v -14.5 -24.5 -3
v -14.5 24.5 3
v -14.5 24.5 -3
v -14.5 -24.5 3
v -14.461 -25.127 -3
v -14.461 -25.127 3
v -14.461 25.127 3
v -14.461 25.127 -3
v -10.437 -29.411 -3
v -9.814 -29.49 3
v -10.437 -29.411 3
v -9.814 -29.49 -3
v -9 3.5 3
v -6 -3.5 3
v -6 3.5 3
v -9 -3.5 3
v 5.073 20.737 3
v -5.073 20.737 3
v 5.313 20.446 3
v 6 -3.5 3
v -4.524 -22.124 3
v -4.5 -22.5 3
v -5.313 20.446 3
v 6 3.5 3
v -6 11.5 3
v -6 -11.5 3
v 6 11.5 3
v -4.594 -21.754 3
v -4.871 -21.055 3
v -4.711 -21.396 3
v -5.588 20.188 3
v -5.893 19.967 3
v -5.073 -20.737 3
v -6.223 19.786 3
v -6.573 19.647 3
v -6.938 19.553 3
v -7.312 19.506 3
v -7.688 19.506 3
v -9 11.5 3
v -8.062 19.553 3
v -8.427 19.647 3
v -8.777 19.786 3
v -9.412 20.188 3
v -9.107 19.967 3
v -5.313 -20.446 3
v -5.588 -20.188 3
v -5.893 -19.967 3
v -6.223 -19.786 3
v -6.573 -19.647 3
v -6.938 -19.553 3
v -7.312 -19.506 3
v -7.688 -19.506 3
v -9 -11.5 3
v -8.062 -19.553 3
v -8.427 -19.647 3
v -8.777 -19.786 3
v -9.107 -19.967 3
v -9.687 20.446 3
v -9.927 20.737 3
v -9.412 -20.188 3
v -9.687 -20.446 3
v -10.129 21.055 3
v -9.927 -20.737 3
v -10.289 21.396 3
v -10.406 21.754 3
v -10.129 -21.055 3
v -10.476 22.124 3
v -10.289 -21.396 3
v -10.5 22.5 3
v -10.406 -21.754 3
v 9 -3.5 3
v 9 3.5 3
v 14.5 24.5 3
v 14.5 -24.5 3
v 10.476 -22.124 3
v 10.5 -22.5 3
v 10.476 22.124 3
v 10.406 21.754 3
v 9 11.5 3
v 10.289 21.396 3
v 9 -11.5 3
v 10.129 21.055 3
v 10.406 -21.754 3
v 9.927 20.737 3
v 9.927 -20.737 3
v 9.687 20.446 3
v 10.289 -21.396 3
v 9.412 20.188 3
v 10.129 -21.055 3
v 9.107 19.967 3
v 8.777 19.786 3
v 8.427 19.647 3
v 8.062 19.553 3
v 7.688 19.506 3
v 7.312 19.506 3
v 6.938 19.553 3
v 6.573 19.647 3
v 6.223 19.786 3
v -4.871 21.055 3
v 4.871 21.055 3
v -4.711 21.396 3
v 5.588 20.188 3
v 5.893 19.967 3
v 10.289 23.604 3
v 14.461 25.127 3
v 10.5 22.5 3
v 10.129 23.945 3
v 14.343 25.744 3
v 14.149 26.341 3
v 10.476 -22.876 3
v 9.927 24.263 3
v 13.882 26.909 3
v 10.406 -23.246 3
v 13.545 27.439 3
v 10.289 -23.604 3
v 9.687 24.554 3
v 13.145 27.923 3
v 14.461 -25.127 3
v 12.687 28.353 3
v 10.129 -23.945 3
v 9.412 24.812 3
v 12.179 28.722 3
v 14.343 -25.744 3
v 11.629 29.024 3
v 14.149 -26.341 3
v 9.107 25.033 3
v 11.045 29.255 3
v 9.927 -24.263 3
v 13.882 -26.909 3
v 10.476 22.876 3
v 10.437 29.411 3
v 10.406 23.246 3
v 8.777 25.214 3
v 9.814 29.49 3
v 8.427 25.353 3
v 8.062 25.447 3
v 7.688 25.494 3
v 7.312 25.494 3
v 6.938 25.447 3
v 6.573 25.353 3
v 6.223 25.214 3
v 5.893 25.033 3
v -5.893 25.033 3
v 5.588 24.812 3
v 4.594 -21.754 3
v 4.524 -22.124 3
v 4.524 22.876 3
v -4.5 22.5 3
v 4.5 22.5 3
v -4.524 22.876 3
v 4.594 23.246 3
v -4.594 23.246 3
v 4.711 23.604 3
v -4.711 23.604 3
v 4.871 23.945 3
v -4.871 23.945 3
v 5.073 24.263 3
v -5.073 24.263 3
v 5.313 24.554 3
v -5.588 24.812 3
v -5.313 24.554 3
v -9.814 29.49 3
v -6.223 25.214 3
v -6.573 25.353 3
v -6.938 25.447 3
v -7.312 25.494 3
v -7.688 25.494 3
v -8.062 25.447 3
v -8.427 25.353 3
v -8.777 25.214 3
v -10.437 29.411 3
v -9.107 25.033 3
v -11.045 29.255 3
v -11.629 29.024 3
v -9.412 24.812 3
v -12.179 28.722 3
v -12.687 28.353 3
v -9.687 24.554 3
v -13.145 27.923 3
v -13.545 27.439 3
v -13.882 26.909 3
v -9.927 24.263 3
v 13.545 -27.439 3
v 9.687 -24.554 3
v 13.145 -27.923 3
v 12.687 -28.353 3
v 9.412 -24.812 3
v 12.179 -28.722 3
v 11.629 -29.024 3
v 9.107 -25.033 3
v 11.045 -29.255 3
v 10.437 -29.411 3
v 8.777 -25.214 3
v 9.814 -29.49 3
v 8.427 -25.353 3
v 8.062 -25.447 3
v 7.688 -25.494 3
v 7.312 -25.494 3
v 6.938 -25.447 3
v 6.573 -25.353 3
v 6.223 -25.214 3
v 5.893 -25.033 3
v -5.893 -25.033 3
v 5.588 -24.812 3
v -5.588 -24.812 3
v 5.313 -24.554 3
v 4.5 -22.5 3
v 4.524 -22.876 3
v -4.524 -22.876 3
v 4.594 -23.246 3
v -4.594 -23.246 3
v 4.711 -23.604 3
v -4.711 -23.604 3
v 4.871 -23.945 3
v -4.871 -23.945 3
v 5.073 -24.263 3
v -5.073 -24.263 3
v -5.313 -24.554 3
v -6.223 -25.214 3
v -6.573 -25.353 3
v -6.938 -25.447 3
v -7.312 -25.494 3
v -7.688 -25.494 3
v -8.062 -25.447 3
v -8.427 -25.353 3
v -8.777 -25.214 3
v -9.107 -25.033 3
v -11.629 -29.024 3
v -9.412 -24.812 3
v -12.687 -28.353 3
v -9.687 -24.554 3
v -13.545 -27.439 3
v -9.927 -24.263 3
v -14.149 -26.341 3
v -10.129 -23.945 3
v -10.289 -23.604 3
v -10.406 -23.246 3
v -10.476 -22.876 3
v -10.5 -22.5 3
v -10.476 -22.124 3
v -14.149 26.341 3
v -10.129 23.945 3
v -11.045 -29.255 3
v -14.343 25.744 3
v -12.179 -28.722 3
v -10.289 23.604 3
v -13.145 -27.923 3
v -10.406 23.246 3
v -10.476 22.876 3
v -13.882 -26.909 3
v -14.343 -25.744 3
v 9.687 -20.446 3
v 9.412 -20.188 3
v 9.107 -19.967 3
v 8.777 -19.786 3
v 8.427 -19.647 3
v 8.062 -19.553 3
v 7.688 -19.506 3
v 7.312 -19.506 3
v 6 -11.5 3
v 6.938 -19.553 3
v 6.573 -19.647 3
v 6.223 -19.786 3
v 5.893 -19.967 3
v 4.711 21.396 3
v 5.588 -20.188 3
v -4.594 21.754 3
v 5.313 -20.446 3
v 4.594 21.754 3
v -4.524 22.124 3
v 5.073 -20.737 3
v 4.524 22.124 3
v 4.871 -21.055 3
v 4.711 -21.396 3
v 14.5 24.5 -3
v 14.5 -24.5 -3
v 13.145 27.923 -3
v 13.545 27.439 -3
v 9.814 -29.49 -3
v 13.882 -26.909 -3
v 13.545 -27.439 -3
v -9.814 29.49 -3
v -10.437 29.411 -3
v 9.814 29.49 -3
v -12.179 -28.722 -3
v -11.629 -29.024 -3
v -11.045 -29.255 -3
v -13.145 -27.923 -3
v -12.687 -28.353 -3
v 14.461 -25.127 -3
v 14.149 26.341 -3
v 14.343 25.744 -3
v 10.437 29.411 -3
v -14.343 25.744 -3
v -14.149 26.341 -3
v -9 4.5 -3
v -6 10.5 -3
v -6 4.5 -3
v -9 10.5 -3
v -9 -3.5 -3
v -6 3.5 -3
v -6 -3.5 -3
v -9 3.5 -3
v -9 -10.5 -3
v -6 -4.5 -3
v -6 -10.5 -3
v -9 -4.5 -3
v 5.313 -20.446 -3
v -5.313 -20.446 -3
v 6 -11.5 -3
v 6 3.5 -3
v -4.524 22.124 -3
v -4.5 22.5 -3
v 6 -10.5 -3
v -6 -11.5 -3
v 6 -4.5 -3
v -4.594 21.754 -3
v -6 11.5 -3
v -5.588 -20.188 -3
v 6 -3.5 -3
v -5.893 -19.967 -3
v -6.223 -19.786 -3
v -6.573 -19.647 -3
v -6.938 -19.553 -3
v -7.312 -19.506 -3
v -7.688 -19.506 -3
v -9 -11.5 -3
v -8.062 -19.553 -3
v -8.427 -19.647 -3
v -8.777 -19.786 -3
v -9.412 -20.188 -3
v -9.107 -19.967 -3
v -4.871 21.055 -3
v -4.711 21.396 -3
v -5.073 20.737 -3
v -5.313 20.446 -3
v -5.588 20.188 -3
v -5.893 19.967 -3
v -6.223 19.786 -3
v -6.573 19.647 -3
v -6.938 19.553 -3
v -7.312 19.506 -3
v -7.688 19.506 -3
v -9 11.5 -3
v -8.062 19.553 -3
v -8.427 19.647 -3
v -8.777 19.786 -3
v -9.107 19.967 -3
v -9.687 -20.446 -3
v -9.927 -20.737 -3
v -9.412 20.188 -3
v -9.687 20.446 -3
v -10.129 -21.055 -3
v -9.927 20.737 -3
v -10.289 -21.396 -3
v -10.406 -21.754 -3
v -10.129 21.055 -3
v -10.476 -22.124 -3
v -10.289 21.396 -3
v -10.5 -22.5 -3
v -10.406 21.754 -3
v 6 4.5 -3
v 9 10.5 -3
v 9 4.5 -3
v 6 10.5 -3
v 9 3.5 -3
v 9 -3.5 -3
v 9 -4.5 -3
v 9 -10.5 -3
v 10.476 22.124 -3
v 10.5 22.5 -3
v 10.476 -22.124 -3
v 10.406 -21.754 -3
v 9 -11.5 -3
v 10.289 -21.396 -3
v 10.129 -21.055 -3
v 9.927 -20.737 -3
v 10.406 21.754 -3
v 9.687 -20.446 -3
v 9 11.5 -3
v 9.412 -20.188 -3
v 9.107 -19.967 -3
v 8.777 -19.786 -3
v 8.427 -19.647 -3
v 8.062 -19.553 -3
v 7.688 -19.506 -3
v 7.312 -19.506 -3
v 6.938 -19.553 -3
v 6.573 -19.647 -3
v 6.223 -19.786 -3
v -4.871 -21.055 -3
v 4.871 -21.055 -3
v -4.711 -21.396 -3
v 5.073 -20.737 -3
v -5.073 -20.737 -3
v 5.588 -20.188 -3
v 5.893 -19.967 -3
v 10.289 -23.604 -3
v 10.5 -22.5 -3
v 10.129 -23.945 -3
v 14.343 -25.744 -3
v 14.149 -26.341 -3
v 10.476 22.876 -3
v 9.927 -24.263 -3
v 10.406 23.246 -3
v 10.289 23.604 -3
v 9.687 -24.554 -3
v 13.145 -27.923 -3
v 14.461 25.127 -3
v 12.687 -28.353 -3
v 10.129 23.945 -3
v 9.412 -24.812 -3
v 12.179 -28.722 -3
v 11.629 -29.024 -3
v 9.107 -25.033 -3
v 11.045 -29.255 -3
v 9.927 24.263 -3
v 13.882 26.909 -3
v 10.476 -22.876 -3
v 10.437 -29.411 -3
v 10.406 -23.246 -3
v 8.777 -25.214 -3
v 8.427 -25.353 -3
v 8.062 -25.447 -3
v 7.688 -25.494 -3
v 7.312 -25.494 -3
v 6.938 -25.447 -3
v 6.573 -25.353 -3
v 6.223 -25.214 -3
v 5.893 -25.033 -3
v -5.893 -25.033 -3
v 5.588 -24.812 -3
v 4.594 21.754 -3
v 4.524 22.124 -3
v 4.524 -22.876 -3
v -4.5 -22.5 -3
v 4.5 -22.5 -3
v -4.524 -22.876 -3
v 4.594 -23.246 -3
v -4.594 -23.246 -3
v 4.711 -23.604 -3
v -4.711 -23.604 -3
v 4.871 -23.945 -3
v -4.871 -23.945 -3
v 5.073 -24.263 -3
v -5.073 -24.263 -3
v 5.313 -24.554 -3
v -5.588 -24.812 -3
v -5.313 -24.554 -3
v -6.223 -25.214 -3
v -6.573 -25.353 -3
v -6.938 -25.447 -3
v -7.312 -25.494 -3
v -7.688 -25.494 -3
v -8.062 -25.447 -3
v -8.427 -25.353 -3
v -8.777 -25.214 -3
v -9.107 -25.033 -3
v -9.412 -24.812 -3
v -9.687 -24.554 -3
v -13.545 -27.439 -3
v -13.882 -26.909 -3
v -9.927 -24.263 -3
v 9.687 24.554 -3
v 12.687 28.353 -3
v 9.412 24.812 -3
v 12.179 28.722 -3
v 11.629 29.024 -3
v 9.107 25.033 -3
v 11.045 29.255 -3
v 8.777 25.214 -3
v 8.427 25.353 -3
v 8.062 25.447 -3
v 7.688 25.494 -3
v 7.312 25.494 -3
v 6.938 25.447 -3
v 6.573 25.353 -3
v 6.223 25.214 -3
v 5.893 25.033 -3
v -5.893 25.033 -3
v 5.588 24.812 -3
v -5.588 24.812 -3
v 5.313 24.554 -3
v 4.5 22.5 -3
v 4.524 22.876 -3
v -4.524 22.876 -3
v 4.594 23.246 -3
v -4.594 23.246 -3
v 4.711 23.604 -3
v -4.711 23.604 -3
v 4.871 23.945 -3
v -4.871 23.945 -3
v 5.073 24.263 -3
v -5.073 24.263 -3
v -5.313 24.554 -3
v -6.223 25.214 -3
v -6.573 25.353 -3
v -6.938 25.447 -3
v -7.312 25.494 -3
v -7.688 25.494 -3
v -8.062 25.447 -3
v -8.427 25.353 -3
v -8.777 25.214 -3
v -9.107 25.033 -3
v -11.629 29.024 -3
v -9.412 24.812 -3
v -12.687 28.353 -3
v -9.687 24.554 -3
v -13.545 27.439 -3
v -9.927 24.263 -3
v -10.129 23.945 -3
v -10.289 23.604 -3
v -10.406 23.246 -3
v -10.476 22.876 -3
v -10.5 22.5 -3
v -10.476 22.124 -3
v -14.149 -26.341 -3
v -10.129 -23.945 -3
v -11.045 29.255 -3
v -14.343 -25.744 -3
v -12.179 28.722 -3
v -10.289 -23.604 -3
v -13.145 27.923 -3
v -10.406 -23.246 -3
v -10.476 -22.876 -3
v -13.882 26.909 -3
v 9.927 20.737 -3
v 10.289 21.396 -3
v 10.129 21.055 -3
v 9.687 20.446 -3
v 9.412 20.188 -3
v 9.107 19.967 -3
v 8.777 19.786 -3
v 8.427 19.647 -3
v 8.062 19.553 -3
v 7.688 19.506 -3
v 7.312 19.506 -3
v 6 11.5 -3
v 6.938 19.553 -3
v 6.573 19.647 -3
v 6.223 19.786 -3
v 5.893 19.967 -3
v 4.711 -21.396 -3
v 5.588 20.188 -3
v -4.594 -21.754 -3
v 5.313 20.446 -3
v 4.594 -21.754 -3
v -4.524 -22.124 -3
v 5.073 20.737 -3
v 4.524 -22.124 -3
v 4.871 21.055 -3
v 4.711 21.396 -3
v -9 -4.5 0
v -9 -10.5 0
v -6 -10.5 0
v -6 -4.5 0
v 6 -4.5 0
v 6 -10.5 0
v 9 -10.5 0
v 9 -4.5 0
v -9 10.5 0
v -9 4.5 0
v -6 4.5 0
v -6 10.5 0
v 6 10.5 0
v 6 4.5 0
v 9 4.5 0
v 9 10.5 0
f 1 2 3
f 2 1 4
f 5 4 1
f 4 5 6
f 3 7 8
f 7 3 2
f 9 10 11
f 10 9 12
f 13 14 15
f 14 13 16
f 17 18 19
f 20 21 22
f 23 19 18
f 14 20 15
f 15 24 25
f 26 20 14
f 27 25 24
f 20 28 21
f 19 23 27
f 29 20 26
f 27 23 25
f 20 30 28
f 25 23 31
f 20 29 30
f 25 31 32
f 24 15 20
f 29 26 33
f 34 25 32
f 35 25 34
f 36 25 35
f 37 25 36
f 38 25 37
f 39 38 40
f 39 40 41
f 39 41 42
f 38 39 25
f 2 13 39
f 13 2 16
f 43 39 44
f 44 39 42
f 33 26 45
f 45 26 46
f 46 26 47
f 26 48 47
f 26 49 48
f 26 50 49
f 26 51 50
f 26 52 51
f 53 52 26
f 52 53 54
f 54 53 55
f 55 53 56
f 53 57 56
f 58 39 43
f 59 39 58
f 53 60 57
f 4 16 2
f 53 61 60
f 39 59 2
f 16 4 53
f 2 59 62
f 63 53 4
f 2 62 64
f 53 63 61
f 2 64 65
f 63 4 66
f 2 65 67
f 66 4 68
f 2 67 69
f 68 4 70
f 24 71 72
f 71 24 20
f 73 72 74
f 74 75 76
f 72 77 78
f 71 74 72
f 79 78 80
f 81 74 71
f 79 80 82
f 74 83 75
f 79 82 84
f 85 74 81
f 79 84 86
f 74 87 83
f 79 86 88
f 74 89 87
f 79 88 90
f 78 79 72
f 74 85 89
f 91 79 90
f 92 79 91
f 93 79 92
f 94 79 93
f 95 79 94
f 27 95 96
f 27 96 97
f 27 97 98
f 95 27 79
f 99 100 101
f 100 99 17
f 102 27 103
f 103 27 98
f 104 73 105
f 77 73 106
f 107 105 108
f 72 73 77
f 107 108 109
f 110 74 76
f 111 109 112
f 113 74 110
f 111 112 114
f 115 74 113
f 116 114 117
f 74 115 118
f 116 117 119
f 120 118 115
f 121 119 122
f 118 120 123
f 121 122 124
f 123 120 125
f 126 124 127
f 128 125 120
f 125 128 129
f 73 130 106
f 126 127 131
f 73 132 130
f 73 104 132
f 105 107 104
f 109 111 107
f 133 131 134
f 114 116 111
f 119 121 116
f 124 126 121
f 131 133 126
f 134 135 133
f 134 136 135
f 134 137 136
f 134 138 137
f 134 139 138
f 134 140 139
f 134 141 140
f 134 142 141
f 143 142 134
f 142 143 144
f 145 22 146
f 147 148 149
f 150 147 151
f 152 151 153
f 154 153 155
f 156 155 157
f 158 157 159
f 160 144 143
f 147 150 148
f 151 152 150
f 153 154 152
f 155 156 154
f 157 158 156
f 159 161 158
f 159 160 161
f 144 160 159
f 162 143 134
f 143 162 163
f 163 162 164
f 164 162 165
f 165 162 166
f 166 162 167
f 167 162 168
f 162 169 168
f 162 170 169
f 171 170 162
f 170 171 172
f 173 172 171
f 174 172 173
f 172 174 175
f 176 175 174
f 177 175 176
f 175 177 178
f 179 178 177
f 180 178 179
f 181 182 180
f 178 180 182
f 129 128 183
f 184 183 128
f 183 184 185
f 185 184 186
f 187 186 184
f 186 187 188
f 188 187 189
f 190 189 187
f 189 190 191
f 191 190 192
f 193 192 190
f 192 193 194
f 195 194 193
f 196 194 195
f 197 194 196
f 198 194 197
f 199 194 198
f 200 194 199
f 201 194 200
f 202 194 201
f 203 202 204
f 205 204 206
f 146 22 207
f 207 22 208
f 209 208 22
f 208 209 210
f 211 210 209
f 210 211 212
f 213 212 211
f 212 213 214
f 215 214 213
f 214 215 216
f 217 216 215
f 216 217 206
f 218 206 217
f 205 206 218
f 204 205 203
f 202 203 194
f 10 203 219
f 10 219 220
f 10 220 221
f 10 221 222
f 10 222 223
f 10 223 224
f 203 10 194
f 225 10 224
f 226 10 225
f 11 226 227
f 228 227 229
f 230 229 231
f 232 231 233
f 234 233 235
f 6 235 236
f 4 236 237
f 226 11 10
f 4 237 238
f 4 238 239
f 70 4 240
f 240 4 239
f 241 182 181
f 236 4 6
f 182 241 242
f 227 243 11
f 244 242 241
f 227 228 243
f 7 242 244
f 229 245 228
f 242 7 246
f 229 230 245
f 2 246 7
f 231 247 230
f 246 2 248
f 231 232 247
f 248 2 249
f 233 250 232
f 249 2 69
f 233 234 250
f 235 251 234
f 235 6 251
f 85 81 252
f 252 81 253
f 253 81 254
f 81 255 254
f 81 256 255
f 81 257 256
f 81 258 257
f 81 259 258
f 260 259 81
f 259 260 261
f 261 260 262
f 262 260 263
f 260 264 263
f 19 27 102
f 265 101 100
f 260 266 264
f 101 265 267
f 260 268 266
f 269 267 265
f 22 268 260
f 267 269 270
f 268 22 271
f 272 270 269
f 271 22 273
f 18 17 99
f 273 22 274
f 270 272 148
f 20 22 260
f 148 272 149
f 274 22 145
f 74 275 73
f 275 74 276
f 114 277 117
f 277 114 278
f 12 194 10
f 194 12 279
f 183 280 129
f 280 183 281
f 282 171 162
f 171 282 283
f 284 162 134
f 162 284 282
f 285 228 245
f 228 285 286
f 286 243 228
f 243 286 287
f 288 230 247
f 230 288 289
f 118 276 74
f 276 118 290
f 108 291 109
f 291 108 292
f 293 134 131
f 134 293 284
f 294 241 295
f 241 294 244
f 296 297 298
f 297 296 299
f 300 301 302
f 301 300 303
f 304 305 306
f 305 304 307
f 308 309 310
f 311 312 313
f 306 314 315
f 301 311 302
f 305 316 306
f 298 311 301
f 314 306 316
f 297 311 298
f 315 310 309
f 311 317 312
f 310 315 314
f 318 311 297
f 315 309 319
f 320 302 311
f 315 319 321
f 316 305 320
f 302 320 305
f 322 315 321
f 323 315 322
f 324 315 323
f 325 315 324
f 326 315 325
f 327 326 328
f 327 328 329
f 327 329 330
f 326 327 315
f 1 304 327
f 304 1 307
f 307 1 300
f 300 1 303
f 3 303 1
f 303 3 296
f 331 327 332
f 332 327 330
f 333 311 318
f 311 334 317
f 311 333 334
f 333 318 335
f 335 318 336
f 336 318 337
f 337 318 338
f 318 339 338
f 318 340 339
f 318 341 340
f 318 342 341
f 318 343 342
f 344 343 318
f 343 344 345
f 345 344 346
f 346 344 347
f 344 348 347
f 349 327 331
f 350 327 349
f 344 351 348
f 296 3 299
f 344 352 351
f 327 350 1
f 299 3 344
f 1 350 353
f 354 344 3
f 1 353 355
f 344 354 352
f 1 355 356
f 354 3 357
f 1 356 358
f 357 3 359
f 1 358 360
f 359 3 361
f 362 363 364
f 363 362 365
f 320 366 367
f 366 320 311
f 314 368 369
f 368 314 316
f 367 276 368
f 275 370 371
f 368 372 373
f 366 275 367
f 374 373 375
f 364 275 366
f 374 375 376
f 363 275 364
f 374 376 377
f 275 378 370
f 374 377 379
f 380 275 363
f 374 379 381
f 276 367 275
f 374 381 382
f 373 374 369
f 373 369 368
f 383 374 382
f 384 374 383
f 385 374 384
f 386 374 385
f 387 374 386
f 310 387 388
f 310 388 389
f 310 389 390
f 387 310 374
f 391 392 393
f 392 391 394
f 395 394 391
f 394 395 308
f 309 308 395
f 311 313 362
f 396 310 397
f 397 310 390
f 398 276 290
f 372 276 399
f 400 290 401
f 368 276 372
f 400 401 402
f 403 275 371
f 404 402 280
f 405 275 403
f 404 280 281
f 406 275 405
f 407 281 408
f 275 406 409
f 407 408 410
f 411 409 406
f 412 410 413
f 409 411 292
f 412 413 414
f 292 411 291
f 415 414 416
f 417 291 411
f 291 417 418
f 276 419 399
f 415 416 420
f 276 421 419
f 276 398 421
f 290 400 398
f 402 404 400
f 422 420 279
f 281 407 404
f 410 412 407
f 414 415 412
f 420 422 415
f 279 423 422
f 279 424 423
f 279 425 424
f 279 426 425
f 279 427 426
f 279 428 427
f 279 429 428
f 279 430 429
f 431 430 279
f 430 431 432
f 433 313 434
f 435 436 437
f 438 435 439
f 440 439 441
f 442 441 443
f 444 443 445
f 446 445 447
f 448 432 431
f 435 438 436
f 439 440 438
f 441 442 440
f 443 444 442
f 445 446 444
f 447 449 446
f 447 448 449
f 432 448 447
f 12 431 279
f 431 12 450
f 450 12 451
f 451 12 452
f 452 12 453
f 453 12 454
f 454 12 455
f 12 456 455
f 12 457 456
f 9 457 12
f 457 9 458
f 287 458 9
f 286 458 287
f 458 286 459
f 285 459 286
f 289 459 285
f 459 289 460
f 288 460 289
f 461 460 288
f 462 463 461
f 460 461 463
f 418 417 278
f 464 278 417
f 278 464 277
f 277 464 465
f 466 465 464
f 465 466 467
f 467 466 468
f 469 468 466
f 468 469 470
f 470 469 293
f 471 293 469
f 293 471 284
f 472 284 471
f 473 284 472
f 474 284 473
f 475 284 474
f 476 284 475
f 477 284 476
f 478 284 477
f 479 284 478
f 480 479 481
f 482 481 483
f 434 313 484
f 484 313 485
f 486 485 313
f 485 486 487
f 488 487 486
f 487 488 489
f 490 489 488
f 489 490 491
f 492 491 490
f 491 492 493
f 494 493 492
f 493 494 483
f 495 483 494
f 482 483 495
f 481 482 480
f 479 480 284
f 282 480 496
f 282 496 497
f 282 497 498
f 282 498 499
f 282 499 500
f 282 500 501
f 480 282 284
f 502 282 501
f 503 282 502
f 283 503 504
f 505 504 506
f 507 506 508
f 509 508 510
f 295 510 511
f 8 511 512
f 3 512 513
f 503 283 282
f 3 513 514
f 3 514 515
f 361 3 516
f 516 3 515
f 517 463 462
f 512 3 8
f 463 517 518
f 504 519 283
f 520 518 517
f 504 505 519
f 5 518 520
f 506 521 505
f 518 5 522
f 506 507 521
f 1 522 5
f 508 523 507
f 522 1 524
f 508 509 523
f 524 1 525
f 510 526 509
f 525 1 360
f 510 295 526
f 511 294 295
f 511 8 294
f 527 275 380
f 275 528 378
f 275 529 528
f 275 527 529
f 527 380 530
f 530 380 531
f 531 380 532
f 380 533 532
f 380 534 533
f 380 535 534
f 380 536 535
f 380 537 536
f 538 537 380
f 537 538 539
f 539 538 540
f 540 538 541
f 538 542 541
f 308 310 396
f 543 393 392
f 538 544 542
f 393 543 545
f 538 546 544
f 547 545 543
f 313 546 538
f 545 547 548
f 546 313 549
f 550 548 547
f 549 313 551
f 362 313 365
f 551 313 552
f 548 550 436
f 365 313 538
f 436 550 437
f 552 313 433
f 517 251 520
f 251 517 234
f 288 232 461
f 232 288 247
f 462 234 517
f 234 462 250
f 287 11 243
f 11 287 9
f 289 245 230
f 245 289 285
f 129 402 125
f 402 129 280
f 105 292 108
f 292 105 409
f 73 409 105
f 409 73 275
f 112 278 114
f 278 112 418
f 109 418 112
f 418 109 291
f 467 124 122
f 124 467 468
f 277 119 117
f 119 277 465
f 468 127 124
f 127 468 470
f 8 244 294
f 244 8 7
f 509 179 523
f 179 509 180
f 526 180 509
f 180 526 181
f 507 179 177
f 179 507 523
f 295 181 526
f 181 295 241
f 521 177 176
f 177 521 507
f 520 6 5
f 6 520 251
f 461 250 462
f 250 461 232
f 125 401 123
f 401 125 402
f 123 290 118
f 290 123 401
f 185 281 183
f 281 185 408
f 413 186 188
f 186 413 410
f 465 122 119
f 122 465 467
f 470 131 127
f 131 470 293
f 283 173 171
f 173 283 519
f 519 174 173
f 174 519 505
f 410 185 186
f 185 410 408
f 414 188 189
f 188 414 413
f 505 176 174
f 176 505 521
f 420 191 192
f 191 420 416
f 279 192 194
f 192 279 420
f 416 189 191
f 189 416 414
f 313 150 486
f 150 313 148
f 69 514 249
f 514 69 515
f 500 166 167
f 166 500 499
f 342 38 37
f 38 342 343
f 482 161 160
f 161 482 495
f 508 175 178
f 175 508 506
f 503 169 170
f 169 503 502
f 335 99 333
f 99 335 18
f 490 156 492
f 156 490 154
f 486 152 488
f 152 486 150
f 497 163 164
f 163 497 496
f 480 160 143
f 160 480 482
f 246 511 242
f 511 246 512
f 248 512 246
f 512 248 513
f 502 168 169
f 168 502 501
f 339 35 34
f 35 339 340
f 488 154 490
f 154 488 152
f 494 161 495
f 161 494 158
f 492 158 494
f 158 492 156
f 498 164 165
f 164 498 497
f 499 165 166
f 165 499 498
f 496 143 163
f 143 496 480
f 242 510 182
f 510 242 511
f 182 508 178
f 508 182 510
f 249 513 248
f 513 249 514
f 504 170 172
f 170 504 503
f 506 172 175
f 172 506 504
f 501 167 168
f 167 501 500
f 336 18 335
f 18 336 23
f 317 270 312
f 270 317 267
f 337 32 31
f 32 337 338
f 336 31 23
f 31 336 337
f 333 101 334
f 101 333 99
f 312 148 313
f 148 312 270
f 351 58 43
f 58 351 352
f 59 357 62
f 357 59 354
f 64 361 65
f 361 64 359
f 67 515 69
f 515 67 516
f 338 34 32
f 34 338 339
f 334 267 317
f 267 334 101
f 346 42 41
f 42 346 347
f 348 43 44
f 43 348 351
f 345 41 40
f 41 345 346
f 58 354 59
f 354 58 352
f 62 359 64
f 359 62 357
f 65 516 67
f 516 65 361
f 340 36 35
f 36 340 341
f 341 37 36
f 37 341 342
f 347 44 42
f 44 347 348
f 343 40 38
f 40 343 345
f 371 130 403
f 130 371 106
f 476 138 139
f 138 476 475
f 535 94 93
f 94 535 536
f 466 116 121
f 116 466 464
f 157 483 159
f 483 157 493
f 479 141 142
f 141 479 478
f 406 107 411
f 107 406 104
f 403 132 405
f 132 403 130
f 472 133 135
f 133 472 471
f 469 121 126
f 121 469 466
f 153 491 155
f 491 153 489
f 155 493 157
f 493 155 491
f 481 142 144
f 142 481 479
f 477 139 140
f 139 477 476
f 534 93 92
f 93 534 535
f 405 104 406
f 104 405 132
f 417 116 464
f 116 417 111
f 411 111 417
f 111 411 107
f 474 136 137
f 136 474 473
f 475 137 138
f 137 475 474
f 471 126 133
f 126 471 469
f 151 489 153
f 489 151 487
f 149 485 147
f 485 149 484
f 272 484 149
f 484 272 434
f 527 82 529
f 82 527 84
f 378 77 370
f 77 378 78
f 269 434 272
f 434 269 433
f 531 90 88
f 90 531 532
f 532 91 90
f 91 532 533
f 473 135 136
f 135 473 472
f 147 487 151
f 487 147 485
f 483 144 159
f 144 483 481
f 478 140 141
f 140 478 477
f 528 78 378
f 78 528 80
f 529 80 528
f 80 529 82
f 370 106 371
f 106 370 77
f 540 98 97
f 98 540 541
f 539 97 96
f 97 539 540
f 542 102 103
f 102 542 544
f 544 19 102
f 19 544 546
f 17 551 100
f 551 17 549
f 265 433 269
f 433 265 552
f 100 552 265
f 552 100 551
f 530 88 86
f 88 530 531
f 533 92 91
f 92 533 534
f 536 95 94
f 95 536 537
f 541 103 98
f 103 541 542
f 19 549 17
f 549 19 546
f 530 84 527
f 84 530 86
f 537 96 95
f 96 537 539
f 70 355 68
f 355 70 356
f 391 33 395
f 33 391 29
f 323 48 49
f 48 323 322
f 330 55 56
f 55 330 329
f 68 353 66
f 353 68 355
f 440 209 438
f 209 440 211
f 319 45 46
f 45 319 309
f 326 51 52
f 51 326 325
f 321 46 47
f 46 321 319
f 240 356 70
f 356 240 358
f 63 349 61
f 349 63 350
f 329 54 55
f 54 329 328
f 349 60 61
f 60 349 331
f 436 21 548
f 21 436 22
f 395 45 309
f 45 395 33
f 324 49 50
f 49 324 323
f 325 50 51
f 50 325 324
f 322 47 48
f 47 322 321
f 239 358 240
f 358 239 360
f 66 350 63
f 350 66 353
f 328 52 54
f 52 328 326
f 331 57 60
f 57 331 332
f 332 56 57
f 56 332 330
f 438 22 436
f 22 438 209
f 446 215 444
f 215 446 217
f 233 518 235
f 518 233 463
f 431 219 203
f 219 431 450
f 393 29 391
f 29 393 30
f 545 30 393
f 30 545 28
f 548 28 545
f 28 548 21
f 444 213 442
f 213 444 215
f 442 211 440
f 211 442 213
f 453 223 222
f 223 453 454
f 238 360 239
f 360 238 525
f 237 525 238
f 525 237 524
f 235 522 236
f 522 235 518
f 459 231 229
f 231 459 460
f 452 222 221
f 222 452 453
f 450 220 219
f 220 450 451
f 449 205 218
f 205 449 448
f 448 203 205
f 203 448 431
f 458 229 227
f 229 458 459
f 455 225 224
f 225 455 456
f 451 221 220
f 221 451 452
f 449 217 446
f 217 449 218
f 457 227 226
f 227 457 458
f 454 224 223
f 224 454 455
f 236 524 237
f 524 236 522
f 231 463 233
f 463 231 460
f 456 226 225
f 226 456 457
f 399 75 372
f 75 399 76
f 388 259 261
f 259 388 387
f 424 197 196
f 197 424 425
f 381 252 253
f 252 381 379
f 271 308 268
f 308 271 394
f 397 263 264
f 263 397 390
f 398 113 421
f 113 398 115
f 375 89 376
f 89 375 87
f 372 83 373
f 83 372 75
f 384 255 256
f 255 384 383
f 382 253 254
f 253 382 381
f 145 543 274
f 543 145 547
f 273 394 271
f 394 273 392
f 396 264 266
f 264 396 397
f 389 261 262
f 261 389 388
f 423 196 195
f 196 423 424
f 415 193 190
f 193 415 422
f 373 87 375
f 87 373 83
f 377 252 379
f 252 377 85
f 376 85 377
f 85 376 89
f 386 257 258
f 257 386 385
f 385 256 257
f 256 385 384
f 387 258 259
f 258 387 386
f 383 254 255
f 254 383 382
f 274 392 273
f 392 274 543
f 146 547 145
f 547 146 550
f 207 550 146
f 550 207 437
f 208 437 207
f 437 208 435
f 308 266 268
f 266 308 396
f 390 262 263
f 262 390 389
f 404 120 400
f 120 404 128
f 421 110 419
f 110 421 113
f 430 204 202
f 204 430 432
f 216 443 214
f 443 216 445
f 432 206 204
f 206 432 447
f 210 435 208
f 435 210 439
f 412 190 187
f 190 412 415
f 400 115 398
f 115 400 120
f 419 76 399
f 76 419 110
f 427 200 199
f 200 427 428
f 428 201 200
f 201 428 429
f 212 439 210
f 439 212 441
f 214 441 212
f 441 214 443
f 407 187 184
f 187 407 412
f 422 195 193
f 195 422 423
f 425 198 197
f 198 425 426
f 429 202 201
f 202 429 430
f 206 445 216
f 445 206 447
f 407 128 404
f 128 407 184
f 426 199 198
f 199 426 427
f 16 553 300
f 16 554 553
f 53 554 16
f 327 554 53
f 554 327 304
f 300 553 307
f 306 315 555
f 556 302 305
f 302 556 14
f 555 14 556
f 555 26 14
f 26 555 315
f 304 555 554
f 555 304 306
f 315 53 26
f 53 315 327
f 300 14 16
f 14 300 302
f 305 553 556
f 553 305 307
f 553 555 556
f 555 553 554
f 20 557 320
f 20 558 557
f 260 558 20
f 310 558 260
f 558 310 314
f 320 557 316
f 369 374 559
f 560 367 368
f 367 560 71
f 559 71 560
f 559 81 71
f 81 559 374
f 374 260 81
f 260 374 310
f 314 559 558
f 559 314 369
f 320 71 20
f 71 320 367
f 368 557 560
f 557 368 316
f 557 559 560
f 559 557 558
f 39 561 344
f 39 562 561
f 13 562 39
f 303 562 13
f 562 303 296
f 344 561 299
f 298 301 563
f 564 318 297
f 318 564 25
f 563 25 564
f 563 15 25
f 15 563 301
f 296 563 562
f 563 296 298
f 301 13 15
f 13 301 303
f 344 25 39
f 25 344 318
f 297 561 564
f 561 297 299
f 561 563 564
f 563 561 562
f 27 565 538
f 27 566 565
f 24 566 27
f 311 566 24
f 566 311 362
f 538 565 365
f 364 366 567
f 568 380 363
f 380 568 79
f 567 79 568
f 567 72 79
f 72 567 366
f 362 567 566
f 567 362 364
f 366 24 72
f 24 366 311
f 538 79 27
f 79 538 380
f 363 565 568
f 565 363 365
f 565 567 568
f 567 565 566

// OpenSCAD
$fn = 50;


difference() {
	union() {
		translate(v = [0, 0, -3.0000000000]) {
			hull() {
				translate(v = [-9.5000000000, 24.5000000000, 0]) {
					cylinder(h = 6, r = 5);
				}
				translate(v = [9.5000000000, 24.5000000000, 0]) {
					cylinder(h = 6, r = 5);
				}
				translate(v = [-9.5000000000, -24.5000000000, 0]) {
					cylinder(h = 6, r = 5);
				}
				translate(v = [9.5000000000, -24.5000000000, 0]) {
					cylinder(h = 6, r = 5);
				}
			}
		}
		translate(v = [0, 0, -3.0000000000]) {
			hull() {
				translate(v = [-9.5000000000, 24.5000000000, 0]) {
					cylinder(h = 6, r = 5);
				}
				translate(v = [9.5000000000, 24.5000000000, 0]) {
					cylinder(h = 6, r = 5);
				}
				translate(v = [-9.5000000000, -24.5000000000, 0]) {
					cylinder(h = 6, r = 5);
				}
				translate(v = [9.5000000000, -24.5000000000, 0]) {
					cylinder(h = 6, r = 5);
				}
			}
		}
	}
	union() {
		translate(v = [-7.5000000000, 22.5000000000, -100.0000000000]) {
			cylinder(h = 200, r = 3.0000000000);
		}
		translate(v = [7.5000000000, 22.5000000000, -100.0000000000]) {
			cylinder(h = 200, r = 3.0000000000);
		}
		translate(v = [-7.5000000000, -22.5000000000, -100.0000000000]) {
			cylinder(h = 200, r = 3.0000000000);
		}
		translate(v = [7.5000000000, -22.5000000000, -100.0000000000]) {
			cylinder(h = 200, r = 3.0000000000);
		}
		translate(v = [-9.0000000000, -11.5000000000, -50]) {
			cube(size = [3, 1, 100]);
		}
		translate(v = [-9.0000000000, -4.5000000000, -50]) {
			cube(size = [3, 1, 100]);
		}
		translate(v = [-9.0000000000, -11.5000000000, 0]) {
			cube(size = [3, 8, 3]);
		}
		translate(v = [6.0000000000, -11.5000000000, -50]) {
			cube(size = [3, 1, 100]);
		}
		translate(v = [6.0000000000, -4.5000000000, -50]) {
			cube(size = [3, 1, 100]);
		}
		translate(v = [6.0000000000, -11.5000000000, 0]) {
			cube(size = [3, 8, 3]);
		}
		translate(v = [-9.0000000000, 3.5000000000, -50]) {
			cube(size = [3, 1, 100]);
		}
		translate(v = [-9.0000000000, 10.5000000000, -50]) {
			cube(size = [3, 1, 100]);
		}
		translate(v = [-9.0000000000, 3.5000000000, 0]) {
			cube(size = [3, 8, 3]);
		}
		translate(v = [6.0000000000, 3.5000000000, -50]) {
			cube(size = [3, 1, 100]);
		}
		translate(v = [6.0000000000, 10.5000000000, -50]) {
			cube(size = [3, 1, 100]);
		}
		translate(v = [6.0000000000, 3.5000000000, 0]) {
			cube(size = [3, 8, 3]);
		}
	}
}
